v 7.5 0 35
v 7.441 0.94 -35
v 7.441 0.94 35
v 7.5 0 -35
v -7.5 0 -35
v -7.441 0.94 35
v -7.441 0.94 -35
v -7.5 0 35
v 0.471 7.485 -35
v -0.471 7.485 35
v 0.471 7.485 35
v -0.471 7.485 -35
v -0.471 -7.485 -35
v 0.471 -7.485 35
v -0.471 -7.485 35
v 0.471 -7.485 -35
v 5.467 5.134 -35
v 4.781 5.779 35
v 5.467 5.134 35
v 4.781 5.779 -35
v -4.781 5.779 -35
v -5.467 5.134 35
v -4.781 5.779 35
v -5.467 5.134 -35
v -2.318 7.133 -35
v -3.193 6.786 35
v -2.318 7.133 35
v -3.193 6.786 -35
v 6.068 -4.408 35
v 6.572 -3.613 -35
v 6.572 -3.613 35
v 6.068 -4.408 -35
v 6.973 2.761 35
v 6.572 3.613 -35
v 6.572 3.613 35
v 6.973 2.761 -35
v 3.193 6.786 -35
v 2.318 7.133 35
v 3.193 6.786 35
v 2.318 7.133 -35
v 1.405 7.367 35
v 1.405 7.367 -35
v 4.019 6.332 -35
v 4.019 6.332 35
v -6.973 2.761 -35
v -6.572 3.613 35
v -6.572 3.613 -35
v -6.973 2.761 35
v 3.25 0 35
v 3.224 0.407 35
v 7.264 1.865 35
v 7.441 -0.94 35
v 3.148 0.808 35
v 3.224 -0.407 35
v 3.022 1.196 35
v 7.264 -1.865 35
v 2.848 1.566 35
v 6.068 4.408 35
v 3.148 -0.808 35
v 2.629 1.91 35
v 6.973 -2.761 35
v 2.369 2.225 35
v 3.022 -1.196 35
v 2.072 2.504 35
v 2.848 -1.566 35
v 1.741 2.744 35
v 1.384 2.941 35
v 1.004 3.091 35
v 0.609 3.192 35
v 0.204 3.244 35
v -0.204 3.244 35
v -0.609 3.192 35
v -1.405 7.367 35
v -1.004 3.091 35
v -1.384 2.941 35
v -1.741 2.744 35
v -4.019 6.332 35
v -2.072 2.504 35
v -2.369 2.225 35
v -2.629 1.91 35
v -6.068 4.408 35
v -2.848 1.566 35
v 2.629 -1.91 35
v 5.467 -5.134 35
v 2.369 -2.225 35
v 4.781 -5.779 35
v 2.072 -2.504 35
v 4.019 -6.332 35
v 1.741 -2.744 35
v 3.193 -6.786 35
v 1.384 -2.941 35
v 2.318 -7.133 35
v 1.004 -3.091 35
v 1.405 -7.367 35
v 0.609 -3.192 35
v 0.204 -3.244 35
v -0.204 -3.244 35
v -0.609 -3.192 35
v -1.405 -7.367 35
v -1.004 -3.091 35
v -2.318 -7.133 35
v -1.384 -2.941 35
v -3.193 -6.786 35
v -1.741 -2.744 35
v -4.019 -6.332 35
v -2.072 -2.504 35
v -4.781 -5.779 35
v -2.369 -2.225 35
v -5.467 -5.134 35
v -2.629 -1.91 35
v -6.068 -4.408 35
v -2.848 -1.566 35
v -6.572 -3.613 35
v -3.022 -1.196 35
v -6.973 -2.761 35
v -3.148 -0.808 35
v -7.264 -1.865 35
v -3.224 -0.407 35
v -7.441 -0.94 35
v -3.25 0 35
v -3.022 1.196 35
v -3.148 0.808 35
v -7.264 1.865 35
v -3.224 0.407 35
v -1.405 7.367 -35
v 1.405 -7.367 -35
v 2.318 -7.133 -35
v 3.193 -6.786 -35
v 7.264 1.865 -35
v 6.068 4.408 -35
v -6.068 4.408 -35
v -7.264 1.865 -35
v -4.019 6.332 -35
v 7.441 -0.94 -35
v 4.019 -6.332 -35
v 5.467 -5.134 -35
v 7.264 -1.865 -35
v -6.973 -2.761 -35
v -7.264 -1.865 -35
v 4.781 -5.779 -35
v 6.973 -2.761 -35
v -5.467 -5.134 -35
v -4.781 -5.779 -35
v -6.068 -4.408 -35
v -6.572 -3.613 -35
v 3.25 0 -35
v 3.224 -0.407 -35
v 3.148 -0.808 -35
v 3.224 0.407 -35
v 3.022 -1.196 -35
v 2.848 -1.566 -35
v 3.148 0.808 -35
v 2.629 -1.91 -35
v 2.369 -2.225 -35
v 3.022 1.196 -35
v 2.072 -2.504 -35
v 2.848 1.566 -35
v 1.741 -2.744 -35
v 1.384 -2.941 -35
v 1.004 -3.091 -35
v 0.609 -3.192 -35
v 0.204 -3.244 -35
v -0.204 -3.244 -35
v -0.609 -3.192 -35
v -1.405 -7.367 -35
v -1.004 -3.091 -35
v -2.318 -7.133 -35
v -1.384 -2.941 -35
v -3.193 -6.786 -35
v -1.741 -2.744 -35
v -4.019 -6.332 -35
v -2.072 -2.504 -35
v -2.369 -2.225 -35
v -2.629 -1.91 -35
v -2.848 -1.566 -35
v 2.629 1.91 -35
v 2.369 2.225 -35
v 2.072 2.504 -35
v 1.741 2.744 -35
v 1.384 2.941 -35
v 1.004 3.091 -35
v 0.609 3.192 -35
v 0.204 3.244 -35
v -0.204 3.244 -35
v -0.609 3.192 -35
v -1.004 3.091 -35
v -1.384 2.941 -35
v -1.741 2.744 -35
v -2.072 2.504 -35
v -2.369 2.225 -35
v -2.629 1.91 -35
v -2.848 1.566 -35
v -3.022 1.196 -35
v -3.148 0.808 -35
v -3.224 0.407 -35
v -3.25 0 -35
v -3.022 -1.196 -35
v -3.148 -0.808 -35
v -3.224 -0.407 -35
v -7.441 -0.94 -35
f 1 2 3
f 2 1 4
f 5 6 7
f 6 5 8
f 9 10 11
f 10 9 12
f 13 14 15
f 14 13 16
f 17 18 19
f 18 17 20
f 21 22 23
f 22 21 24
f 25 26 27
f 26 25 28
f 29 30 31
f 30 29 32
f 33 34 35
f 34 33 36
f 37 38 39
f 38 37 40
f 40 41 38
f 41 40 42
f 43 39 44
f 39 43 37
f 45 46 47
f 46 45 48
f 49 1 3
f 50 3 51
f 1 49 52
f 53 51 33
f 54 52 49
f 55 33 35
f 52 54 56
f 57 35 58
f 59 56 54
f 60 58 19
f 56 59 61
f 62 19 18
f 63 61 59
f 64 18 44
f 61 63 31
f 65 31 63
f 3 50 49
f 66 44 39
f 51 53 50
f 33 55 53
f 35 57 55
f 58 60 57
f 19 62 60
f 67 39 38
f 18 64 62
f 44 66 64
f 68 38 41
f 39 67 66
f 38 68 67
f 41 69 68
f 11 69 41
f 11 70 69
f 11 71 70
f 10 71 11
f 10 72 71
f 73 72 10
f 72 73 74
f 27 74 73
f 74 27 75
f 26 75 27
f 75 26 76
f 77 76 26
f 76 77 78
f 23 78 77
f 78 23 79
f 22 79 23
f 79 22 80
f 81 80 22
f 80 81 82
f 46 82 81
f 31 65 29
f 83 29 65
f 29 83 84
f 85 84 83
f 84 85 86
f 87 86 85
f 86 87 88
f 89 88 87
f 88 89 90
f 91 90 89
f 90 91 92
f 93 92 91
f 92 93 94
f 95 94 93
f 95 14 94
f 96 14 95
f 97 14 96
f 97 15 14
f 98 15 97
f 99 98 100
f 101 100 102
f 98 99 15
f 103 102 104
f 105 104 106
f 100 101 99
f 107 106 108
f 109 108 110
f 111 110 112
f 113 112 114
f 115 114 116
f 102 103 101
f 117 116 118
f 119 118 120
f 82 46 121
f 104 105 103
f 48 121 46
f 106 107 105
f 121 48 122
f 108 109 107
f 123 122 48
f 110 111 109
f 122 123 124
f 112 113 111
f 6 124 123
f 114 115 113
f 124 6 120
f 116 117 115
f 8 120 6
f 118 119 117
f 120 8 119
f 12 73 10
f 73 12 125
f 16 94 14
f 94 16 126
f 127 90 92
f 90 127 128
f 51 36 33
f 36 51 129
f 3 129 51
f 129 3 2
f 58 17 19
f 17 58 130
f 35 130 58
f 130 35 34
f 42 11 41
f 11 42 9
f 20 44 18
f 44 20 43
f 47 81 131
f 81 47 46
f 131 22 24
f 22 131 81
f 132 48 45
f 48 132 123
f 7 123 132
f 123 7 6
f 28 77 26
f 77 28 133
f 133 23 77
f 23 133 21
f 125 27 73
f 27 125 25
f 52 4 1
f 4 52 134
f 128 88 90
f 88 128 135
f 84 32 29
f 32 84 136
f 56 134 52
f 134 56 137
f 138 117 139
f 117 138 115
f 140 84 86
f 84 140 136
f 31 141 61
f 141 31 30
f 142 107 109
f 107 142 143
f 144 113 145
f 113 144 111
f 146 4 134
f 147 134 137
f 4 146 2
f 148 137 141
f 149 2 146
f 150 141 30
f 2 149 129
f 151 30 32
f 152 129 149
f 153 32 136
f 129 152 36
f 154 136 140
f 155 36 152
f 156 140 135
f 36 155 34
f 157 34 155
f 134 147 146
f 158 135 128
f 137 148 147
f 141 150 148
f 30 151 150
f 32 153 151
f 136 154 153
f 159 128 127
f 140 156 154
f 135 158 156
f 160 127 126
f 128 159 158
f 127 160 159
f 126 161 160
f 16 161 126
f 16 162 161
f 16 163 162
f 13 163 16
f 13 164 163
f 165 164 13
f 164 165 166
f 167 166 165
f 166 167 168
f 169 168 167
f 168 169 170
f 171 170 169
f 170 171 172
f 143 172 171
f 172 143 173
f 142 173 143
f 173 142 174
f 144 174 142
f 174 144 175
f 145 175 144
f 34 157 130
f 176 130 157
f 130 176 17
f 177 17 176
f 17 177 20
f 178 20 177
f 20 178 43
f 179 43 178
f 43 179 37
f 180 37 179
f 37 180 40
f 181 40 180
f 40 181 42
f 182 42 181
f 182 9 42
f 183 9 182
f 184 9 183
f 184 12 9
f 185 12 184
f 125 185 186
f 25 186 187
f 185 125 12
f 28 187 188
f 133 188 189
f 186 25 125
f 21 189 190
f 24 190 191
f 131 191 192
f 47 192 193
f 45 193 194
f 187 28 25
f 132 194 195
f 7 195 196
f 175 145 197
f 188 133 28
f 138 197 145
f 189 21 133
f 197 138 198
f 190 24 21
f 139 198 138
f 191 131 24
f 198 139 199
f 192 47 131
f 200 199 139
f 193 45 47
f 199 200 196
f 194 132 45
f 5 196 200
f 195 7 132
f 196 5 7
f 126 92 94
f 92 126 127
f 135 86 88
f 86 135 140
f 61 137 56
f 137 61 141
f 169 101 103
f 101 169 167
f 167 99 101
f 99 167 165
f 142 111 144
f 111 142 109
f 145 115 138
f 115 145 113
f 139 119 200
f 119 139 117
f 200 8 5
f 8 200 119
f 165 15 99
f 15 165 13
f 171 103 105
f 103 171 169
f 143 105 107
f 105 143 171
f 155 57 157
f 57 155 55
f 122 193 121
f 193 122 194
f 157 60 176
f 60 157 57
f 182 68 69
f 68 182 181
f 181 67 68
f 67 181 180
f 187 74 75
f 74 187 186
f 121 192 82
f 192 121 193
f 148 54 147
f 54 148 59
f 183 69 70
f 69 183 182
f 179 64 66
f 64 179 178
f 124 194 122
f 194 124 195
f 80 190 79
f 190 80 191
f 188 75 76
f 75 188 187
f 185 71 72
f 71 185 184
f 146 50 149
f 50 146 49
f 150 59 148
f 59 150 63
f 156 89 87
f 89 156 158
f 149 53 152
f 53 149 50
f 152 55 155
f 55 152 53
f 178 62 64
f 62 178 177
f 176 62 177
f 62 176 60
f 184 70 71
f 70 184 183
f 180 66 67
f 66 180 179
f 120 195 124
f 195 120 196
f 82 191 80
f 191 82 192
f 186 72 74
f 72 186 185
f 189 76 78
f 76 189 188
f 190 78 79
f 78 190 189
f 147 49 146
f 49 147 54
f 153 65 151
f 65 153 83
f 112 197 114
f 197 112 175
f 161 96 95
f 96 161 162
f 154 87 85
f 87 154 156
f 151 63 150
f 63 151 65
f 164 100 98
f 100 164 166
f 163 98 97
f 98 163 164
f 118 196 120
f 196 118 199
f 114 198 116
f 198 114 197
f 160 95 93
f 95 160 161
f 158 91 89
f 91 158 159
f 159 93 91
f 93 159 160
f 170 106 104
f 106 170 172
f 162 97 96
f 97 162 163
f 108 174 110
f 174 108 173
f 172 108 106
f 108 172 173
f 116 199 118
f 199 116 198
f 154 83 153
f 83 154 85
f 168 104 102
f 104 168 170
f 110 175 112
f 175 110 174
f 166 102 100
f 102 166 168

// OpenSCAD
$fn = 50;


difference() {
	union() {
		translate(v = [0, 0, -35.0000000000]) {
			cylinder(h = 70, r = 7.5000000000);
		}
	}
	union() {
		translate(v = [0, 0, -100.0000000000]) {
			cylinder(h = 200, r = 3.2500000000);
		}
	}
}
